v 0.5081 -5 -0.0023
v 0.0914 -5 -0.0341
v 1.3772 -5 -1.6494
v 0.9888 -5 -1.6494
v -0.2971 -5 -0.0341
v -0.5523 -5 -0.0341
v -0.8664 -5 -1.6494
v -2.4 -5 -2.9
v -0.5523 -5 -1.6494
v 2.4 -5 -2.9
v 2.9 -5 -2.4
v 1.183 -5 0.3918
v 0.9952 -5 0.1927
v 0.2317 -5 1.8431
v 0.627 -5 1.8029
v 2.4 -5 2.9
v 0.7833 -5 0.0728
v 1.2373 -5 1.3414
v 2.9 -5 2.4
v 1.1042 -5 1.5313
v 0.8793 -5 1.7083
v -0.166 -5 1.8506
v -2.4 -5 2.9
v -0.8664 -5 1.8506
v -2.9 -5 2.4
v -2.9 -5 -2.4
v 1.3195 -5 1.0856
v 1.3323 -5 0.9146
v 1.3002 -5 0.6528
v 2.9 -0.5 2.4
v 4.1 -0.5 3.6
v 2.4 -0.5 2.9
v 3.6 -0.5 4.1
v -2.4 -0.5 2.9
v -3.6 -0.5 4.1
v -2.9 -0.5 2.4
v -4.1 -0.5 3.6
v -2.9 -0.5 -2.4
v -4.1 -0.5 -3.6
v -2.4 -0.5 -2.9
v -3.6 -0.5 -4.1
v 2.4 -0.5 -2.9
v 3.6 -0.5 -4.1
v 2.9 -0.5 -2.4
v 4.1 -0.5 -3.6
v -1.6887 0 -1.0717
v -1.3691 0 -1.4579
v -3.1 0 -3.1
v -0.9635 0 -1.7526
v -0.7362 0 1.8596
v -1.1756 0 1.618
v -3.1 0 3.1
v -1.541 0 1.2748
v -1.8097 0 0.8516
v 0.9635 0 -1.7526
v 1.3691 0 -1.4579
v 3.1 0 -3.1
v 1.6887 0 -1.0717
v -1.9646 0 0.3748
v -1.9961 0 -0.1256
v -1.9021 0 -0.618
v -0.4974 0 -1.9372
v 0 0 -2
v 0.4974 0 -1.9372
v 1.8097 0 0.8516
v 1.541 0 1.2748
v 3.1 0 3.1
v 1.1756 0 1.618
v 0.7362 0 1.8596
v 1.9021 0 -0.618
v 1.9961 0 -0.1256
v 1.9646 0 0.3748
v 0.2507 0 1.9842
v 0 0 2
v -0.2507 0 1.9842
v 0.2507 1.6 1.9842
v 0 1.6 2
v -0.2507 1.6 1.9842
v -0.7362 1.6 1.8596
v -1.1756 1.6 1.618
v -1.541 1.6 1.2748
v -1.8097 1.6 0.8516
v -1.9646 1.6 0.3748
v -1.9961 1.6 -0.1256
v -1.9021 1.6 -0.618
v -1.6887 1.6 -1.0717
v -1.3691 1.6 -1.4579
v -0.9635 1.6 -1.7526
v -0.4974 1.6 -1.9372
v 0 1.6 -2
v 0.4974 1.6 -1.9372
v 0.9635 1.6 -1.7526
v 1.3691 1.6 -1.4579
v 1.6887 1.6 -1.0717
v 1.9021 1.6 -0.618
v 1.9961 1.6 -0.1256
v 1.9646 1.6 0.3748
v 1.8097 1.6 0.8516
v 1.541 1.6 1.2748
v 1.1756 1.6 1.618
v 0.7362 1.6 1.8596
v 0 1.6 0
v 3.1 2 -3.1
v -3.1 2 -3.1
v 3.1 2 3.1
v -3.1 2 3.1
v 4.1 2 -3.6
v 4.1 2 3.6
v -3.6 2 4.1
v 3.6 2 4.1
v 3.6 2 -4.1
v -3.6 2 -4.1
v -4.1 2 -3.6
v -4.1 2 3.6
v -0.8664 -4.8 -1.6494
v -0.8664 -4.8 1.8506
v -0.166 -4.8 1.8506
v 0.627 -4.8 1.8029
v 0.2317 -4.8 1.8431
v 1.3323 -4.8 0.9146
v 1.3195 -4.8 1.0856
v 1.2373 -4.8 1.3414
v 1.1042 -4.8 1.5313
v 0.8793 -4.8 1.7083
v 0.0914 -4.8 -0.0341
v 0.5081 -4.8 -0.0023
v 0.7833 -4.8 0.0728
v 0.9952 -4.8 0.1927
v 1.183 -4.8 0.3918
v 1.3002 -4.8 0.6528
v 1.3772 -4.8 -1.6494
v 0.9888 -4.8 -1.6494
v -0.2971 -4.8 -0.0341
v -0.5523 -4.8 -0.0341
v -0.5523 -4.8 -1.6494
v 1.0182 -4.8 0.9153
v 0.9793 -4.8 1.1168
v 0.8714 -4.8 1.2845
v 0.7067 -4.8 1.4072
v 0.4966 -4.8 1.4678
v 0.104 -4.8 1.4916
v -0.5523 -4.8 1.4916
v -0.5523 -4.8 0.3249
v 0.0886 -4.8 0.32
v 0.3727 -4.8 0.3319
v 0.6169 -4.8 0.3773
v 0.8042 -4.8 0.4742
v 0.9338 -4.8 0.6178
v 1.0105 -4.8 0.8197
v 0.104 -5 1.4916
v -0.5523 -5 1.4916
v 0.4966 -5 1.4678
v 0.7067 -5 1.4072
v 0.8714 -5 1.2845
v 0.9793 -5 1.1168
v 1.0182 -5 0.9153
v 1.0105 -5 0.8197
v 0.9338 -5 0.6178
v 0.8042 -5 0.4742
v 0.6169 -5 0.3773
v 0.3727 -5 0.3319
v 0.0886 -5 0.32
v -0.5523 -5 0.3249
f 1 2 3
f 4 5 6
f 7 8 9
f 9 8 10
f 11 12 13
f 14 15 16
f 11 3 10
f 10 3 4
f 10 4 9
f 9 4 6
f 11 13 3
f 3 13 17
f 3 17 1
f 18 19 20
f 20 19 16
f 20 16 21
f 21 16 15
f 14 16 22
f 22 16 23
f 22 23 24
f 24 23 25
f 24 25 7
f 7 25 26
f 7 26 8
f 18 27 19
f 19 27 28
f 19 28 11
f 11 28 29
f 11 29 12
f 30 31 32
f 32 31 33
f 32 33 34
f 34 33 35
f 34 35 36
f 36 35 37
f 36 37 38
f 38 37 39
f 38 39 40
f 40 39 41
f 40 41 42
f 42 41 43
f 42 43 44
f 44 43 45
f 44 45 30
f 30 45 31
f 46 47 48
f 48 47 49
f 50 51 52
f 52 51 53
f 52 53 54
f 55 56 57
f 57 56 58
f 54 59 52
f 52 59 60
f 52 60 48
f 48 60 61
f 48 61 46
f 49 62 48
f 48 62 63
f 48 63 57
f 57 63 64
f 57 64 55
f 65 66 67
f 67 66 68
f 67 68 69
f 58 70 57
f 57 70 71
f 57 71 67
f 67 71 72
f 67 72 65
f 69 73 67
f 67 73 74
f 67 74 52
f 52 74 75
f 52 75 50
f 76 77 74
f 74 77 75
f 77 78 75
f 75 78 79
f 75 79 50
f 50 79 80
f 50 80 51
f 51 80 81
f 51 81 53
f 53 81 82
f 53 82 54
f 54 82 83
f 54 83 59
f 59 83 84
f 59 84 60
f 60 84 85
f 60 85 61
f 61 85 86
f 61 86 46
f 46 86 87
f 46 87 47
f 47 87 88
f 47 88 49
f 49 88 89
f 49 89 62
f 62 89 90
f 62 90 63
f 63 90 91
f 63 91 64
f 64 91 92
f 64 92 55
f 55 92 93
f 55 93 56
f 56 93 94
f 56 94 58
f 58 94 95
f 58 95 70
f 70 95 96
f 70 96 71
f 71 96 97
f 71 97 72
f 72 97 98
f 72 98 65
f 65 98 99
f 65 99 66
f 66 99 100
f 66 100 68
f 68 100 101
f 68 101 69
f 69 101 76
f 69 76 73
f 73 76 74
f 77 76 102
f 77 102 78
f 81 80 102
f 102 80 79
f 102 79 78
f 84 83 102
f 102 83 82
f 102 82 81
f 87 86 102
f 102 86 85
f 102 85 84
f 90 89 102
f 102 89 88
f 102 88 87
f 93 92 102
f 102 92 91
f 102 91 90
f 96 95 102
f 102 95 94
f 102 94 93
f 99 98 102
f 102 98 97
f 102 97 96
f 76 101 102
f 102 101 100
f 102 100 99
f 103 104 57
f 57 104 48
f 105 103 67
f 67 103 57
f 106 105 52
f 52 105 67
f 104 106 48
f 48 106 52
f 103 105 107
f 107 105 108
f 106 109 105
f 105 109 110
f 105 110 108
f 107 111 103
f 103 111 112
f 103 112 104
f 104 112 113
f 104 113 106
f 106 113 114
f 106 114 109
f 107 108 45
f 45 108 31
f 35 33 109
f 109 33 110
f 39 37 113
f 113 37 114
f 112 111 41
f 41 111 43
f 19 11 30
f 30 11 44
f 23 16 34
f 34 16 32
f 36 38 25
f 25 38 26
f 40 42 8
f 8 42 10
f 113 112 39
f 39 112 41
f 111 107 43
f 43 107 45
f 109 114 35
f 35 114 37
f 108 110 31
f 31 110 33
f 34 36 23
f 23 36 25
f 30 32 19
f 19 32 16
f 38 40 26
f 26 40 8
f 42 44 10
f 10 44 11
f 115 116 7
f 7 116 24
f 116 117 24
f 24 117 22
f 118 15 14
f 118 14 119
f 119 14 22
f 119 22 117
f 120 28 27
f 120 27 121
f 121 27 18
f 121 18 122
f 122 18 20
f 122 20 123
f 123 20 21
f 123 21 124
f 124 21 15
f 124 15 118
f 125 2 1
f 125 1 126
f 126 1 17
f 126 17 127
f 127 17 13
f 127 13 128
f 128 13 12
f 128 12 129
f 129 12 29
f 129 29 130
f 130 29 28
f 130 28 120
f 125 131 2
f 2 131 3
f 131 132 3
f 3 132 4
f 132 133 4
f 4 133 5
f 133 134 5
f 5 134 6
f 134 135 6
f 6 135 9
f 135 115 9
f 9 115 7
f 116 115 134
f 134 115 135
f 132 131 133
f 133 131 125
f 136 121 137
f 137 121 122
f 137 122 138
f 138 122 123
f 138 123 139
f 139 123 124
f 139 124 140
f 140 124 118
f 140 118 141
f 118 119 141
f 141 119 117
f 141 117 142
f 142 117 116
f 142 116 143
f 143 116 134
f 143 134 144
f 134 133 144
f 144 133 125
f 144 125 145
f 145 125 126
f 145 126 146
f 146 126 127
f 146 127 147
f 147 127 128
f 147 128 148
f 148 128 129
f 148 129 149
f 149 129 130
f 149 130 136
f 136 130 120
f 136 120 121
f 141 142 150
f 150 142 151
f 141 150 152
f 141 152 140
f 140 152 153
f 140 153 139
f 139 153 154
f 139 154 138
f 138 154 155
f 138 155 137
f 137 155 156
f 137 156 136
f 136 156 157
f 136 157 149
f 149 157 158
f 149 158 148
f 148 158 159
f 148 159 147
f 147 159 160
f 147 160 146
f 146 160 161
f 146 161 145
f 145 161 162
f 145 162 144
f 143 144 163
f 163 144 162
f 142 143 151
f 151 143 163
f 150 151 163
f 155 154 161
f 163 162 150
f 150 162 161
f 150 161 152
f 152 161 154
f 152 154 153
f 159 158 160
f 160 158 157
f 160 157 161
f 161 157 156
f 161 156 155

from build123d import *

# Parameters (mm, degrees)
SKETCH1_R           = 2
BOSS_EXTRUDE1_DEPTH = 1.6
SKETCH1_3_W         = 8.2
SKETCH1_3_H         = 8.2
SKETCH1_3_W_2       = 6.2
SKETCH1_3_H_2       = 6.2
BOSS_EXTRUDE2_DEPTH = 2
SKETCH1_4_W         = 8.2
SKETCH1_4_H         = 8.2
BOSS_EXTRUDE3_DEPTH = 0.5
SKETCH3_W           = 5.8
SKETCH3_H           = 5.8
BOSS_EXTRUDE4_DEPTH = 4.5
CHAMFER1_SIZE       = 0.5
CUT_EXTRUDE1_DEPTH  = 0.2


with BuildPart() as part:
    # Sketch1 → Boss-Extrude1 (new body)
    with BuildSketch(Plane(origin=(0, 0, 0), x_dir=(1, 0, 0), z_dir=(0, 1, 0))):
        Circle(SKETCH1_R)
    extrude(amount=BOSS_EXTRUDE1_DEPTH)



with BuildPart() as body_2:
    # Sketch1<3> → Boss-Extrude2 (new body)
    with BuildSketch(Plane(origin=(0, 0, 0), x_dir=(1, 0, 0), z_dir=(0, 1, 0))):
        Rectangle(SKETCH1_3_W, SKETCH1_3_H)
        Rectangle(SKETCH1_3_W_2, SKETCH1_3_H_2, mode=Mode.SUBTRACT)
    extrude(amount=BOSS_EXTRUDE2_DEPTH)


with BuildPart() as part_1:
    add(part.part)

    add(body_2.part)  # Boss-Extrude3 merges body 2
    # Sketch1<4> → Boss-Extrude3 (add)
    with BuildSketch(Plane(origin=(0, 0, 0), x_dir=(1, 0, 0), z_dir=(0, 1, 0))):
        Rectangle(SKETCH1_4_W, SKETCH1_4_H)
    extrude(amount=-BOSS_EXTRUDE3_DEPTH)

    # Sketch3 → Boss-Extrude4 (add)
    with BuildSketch(Plane.XZ.offset(0.5)):
        Rectangle(SKETCH3_W, SKETCH3_H)
    extrude(amount=BOSS_EXTRUDE4_DEPTH)

    # Chamfer1
    chamfer1_edges = [part_1.edges().sort_by_distance(p)[0] for p in [
        (-4.1, 0.75, -4.1),
        (4.1, 0.75, -4.1),
        (-4.1, 0.75, 4.1),
        (4.1, 0.75, 4.1),
        (-2.9, -2.75, 2.9),
        (2.9, -2.75, 2.9),
        (-2.9, -2.75, -2.9),
        (2.9, -2.75, -2.9),
    ]]
    chamfer(chamfer1_edges, length=CHAMFER1_SIZE)

    # Sketch4 → Cut-Extrude1 (cut)
    with BuildSketch(Plane.XZ.offset(5)):
        with BuildLine():
            Line((-0.866374082, 1.850562538), (-0.165953409, 1.850562538))
            add(Edge.make_bspline(
                [(-0.165953409, 1.850562538), (-0.11921228, 1.850406952), (-0.029464136, 1.85010821), (0.099109135, 1.848442447), (0.215936232, 1.843668091), (0.320956071, 1.839559508), (0.414166726, 1.832067567), (0.495854017, 1.824906919), (0.565641714, 1.815533259), (0.607887566, 1.806827836), (0.627015341, 1.802886256)],
                knots=[0, 0, 0, 0, 1.410062039, 2.707475311, 3.878576406, 4.937260626, 5.877586885, 6.699081471, 7.410979367, 8, 8, 8, 8], degree=3))
            add(Edge.make_bspline(
                [(0.627015341, 1.802886256), (0.652621966, 1.796559491), (0.703288955, 1.784040927), (0.776239021, 1.757581326), (0.845753345, 1.726961702), (0.911543169, 1.690997981), (0.973278961, 1.649423202), (1.031597271, 1.602955079), (1.086762735, 1.551847874), (1.136544365, 1.494813032), (1.183483417, 1.434976522), (1.223072043, 1.370272766), (1.257198523, 1.302611238), (1.28436904, 1.23130382), (1.306247013, 1.157042048), (1.321673253, 1.079153252), (1.33092444, 0.997992277), (1.331866296, 0.942634368), (1.332343867, 0.914564942)],
                knots=[0, 0, 0, 0, 1.027469482, 2.033020251, 3.019912614, 3.986113645, 4.951240523, 5.91722682, 6.890402269, 7.87763091, 8.8651537, 9.85103654, 10.82876324, 11.815024772, 12.821070561, 13.842952187, 14.906261191, 16, 16, 16, 16], degree=3))
            add(Edge.make_bspline(
                [(1.332343867, 0.914564942), (1.330874869, 0.867929837), (1.328008473, 0.77693267), (1.30128337, 0.644871788), (1.25750685, 0.521682474), (1.197183561, 0.407519836), (1.120364085, 0.30460919), (1.028039294, 0.214218735), (0.920157682, 0.138578822), (0.819728367, 0.086126018), (0.731014167, 0.052533109), (0.657980854, 0.02889675), (0.578313877, 0.010634785), (0.492776542, -0.005725347), (0.401012886, -0.018077041), (0.303242847, -0.027123636), (0.199396695, -0.032777684), (0.128057626, -0.033619689), (0.09135829, -0.034052846)],
                knots=[0, 0, 0, 0, 1.260483769, 2.459530307, 3.627416485, 4.787058657, 5.939039949, 7.08810263, 8.267026773, 9.491475466, 10.141966685, 10.831826277, 11.566392101, 12.351337768, 13.187381173, 14.07005841, 15.007169909, 16, 16, 16, 16], degree=3))
            Line((0.09135829, -0.034052846), (1.377215662, -1.649437462))
            Line((1.377215662, -1.649437462), (0.988794188, -1.649437462))
            Line((0.988794188, -1.649437462), (-0.297063184, -0.034052846))
            Line((-0.297063184, -0.034052846), (-0.552271517, -0.034052846))
            Line((-0.552271517, -0.034052846), (-0.552271517, -1.649437462))
            Line((-0.552271517, -1.649437462), (-0.866374082, -1.649437462))
            Line((-0.866374082, -1.649437462), (-0.866374082, 1.850562538))
        make_face()
        with BuildLine():
            Line((-0.552271517, 1.491588179), (-0.552271517, 0.324921513))
            Line((-0.552271517, 0.324921513), (0.088553803, 0.32001366))
            add(Edge.make_bspline(
                [(0.088553803, 0.32001366), (0.118473842, 0.320000423), (0.176467399, 0.319974767), (0.260368064, 0.323968543), (0.338488176, 0.328511861), (0.410528928, 0.335461207), (0.476522503, 0.344417279), (0.536435916, 0.355620263), (0.590366968, 0.368672326), (0.653265507, 0.388873951), (0.723502038, 0.42087997), (0.799833498, 0.467445468), (0.864835836, 0.526014588), (0.919753698, 0.592988044), (0.963883129, 0.666624292), (0.994995184, 0.746040662), (1.014737626, 0.82923226), (1.017066171, 0.886410367), (1.018241303, 0.915266064)],
                knots=[0, 0, 0, 0, 1.146690395, 2.22261258, 3.21895312, 4.145990853, 4.996080663, 5.770904154, 6.481378293, 7.121626537, 8.300444488, 9.431385265, 10.535395872, 11.636531494, 12.74115979, 13.810798291, 14.895190096, 16, 16, 16, 16], degree=3))
            add(Edge.make_bspline(
                [(1.018241303, 0.915266064), (1.017039182, 0.943412638), (1.014657017, 0.999188876), (0.995208248, 1.080844787), (0.962318867, 1.157911737), (0.917996629, 1.230076222), (0.863997474, 1.295581958), (0.800679661, 1.351629111), (0.729774466, 1.397878575), (0.663503268, 1.427432956), (0.604269055, 1.445552809), (0.552839395, 1.458303973), (0.494727917, 1.468548442), (0.429652459, 1.476756503), (0.357890828, 1.483811447), (0.279080177, 1.488563226), (0.193743397, 1.49137709), (0.134596465, 1.491516179), (0.103978483, 1.491588179)],
                knots=[0, 0, 0, 0, 1.101028733, 2.181837193, 3.264309656, 4.369019818, 5.486613113, 6.575447106, 7.666700264, 8.788928104, 9.402425223, 10.0903467, 10.862060571, 11.710948788, 12.657782767, 13.684531032, 14.801375019, 16, 16, 16, 16], degree=3))
            Line((0.103978483, 1.491588179), (-0.552271517, 1.491588179))
        make_face(mode=Mode.SUBTRACT)
    extrude(amount=-CUT_EXTRUDE1_DEPTH, mode=Mode.SUBTRACT)


solid = part_1.part
